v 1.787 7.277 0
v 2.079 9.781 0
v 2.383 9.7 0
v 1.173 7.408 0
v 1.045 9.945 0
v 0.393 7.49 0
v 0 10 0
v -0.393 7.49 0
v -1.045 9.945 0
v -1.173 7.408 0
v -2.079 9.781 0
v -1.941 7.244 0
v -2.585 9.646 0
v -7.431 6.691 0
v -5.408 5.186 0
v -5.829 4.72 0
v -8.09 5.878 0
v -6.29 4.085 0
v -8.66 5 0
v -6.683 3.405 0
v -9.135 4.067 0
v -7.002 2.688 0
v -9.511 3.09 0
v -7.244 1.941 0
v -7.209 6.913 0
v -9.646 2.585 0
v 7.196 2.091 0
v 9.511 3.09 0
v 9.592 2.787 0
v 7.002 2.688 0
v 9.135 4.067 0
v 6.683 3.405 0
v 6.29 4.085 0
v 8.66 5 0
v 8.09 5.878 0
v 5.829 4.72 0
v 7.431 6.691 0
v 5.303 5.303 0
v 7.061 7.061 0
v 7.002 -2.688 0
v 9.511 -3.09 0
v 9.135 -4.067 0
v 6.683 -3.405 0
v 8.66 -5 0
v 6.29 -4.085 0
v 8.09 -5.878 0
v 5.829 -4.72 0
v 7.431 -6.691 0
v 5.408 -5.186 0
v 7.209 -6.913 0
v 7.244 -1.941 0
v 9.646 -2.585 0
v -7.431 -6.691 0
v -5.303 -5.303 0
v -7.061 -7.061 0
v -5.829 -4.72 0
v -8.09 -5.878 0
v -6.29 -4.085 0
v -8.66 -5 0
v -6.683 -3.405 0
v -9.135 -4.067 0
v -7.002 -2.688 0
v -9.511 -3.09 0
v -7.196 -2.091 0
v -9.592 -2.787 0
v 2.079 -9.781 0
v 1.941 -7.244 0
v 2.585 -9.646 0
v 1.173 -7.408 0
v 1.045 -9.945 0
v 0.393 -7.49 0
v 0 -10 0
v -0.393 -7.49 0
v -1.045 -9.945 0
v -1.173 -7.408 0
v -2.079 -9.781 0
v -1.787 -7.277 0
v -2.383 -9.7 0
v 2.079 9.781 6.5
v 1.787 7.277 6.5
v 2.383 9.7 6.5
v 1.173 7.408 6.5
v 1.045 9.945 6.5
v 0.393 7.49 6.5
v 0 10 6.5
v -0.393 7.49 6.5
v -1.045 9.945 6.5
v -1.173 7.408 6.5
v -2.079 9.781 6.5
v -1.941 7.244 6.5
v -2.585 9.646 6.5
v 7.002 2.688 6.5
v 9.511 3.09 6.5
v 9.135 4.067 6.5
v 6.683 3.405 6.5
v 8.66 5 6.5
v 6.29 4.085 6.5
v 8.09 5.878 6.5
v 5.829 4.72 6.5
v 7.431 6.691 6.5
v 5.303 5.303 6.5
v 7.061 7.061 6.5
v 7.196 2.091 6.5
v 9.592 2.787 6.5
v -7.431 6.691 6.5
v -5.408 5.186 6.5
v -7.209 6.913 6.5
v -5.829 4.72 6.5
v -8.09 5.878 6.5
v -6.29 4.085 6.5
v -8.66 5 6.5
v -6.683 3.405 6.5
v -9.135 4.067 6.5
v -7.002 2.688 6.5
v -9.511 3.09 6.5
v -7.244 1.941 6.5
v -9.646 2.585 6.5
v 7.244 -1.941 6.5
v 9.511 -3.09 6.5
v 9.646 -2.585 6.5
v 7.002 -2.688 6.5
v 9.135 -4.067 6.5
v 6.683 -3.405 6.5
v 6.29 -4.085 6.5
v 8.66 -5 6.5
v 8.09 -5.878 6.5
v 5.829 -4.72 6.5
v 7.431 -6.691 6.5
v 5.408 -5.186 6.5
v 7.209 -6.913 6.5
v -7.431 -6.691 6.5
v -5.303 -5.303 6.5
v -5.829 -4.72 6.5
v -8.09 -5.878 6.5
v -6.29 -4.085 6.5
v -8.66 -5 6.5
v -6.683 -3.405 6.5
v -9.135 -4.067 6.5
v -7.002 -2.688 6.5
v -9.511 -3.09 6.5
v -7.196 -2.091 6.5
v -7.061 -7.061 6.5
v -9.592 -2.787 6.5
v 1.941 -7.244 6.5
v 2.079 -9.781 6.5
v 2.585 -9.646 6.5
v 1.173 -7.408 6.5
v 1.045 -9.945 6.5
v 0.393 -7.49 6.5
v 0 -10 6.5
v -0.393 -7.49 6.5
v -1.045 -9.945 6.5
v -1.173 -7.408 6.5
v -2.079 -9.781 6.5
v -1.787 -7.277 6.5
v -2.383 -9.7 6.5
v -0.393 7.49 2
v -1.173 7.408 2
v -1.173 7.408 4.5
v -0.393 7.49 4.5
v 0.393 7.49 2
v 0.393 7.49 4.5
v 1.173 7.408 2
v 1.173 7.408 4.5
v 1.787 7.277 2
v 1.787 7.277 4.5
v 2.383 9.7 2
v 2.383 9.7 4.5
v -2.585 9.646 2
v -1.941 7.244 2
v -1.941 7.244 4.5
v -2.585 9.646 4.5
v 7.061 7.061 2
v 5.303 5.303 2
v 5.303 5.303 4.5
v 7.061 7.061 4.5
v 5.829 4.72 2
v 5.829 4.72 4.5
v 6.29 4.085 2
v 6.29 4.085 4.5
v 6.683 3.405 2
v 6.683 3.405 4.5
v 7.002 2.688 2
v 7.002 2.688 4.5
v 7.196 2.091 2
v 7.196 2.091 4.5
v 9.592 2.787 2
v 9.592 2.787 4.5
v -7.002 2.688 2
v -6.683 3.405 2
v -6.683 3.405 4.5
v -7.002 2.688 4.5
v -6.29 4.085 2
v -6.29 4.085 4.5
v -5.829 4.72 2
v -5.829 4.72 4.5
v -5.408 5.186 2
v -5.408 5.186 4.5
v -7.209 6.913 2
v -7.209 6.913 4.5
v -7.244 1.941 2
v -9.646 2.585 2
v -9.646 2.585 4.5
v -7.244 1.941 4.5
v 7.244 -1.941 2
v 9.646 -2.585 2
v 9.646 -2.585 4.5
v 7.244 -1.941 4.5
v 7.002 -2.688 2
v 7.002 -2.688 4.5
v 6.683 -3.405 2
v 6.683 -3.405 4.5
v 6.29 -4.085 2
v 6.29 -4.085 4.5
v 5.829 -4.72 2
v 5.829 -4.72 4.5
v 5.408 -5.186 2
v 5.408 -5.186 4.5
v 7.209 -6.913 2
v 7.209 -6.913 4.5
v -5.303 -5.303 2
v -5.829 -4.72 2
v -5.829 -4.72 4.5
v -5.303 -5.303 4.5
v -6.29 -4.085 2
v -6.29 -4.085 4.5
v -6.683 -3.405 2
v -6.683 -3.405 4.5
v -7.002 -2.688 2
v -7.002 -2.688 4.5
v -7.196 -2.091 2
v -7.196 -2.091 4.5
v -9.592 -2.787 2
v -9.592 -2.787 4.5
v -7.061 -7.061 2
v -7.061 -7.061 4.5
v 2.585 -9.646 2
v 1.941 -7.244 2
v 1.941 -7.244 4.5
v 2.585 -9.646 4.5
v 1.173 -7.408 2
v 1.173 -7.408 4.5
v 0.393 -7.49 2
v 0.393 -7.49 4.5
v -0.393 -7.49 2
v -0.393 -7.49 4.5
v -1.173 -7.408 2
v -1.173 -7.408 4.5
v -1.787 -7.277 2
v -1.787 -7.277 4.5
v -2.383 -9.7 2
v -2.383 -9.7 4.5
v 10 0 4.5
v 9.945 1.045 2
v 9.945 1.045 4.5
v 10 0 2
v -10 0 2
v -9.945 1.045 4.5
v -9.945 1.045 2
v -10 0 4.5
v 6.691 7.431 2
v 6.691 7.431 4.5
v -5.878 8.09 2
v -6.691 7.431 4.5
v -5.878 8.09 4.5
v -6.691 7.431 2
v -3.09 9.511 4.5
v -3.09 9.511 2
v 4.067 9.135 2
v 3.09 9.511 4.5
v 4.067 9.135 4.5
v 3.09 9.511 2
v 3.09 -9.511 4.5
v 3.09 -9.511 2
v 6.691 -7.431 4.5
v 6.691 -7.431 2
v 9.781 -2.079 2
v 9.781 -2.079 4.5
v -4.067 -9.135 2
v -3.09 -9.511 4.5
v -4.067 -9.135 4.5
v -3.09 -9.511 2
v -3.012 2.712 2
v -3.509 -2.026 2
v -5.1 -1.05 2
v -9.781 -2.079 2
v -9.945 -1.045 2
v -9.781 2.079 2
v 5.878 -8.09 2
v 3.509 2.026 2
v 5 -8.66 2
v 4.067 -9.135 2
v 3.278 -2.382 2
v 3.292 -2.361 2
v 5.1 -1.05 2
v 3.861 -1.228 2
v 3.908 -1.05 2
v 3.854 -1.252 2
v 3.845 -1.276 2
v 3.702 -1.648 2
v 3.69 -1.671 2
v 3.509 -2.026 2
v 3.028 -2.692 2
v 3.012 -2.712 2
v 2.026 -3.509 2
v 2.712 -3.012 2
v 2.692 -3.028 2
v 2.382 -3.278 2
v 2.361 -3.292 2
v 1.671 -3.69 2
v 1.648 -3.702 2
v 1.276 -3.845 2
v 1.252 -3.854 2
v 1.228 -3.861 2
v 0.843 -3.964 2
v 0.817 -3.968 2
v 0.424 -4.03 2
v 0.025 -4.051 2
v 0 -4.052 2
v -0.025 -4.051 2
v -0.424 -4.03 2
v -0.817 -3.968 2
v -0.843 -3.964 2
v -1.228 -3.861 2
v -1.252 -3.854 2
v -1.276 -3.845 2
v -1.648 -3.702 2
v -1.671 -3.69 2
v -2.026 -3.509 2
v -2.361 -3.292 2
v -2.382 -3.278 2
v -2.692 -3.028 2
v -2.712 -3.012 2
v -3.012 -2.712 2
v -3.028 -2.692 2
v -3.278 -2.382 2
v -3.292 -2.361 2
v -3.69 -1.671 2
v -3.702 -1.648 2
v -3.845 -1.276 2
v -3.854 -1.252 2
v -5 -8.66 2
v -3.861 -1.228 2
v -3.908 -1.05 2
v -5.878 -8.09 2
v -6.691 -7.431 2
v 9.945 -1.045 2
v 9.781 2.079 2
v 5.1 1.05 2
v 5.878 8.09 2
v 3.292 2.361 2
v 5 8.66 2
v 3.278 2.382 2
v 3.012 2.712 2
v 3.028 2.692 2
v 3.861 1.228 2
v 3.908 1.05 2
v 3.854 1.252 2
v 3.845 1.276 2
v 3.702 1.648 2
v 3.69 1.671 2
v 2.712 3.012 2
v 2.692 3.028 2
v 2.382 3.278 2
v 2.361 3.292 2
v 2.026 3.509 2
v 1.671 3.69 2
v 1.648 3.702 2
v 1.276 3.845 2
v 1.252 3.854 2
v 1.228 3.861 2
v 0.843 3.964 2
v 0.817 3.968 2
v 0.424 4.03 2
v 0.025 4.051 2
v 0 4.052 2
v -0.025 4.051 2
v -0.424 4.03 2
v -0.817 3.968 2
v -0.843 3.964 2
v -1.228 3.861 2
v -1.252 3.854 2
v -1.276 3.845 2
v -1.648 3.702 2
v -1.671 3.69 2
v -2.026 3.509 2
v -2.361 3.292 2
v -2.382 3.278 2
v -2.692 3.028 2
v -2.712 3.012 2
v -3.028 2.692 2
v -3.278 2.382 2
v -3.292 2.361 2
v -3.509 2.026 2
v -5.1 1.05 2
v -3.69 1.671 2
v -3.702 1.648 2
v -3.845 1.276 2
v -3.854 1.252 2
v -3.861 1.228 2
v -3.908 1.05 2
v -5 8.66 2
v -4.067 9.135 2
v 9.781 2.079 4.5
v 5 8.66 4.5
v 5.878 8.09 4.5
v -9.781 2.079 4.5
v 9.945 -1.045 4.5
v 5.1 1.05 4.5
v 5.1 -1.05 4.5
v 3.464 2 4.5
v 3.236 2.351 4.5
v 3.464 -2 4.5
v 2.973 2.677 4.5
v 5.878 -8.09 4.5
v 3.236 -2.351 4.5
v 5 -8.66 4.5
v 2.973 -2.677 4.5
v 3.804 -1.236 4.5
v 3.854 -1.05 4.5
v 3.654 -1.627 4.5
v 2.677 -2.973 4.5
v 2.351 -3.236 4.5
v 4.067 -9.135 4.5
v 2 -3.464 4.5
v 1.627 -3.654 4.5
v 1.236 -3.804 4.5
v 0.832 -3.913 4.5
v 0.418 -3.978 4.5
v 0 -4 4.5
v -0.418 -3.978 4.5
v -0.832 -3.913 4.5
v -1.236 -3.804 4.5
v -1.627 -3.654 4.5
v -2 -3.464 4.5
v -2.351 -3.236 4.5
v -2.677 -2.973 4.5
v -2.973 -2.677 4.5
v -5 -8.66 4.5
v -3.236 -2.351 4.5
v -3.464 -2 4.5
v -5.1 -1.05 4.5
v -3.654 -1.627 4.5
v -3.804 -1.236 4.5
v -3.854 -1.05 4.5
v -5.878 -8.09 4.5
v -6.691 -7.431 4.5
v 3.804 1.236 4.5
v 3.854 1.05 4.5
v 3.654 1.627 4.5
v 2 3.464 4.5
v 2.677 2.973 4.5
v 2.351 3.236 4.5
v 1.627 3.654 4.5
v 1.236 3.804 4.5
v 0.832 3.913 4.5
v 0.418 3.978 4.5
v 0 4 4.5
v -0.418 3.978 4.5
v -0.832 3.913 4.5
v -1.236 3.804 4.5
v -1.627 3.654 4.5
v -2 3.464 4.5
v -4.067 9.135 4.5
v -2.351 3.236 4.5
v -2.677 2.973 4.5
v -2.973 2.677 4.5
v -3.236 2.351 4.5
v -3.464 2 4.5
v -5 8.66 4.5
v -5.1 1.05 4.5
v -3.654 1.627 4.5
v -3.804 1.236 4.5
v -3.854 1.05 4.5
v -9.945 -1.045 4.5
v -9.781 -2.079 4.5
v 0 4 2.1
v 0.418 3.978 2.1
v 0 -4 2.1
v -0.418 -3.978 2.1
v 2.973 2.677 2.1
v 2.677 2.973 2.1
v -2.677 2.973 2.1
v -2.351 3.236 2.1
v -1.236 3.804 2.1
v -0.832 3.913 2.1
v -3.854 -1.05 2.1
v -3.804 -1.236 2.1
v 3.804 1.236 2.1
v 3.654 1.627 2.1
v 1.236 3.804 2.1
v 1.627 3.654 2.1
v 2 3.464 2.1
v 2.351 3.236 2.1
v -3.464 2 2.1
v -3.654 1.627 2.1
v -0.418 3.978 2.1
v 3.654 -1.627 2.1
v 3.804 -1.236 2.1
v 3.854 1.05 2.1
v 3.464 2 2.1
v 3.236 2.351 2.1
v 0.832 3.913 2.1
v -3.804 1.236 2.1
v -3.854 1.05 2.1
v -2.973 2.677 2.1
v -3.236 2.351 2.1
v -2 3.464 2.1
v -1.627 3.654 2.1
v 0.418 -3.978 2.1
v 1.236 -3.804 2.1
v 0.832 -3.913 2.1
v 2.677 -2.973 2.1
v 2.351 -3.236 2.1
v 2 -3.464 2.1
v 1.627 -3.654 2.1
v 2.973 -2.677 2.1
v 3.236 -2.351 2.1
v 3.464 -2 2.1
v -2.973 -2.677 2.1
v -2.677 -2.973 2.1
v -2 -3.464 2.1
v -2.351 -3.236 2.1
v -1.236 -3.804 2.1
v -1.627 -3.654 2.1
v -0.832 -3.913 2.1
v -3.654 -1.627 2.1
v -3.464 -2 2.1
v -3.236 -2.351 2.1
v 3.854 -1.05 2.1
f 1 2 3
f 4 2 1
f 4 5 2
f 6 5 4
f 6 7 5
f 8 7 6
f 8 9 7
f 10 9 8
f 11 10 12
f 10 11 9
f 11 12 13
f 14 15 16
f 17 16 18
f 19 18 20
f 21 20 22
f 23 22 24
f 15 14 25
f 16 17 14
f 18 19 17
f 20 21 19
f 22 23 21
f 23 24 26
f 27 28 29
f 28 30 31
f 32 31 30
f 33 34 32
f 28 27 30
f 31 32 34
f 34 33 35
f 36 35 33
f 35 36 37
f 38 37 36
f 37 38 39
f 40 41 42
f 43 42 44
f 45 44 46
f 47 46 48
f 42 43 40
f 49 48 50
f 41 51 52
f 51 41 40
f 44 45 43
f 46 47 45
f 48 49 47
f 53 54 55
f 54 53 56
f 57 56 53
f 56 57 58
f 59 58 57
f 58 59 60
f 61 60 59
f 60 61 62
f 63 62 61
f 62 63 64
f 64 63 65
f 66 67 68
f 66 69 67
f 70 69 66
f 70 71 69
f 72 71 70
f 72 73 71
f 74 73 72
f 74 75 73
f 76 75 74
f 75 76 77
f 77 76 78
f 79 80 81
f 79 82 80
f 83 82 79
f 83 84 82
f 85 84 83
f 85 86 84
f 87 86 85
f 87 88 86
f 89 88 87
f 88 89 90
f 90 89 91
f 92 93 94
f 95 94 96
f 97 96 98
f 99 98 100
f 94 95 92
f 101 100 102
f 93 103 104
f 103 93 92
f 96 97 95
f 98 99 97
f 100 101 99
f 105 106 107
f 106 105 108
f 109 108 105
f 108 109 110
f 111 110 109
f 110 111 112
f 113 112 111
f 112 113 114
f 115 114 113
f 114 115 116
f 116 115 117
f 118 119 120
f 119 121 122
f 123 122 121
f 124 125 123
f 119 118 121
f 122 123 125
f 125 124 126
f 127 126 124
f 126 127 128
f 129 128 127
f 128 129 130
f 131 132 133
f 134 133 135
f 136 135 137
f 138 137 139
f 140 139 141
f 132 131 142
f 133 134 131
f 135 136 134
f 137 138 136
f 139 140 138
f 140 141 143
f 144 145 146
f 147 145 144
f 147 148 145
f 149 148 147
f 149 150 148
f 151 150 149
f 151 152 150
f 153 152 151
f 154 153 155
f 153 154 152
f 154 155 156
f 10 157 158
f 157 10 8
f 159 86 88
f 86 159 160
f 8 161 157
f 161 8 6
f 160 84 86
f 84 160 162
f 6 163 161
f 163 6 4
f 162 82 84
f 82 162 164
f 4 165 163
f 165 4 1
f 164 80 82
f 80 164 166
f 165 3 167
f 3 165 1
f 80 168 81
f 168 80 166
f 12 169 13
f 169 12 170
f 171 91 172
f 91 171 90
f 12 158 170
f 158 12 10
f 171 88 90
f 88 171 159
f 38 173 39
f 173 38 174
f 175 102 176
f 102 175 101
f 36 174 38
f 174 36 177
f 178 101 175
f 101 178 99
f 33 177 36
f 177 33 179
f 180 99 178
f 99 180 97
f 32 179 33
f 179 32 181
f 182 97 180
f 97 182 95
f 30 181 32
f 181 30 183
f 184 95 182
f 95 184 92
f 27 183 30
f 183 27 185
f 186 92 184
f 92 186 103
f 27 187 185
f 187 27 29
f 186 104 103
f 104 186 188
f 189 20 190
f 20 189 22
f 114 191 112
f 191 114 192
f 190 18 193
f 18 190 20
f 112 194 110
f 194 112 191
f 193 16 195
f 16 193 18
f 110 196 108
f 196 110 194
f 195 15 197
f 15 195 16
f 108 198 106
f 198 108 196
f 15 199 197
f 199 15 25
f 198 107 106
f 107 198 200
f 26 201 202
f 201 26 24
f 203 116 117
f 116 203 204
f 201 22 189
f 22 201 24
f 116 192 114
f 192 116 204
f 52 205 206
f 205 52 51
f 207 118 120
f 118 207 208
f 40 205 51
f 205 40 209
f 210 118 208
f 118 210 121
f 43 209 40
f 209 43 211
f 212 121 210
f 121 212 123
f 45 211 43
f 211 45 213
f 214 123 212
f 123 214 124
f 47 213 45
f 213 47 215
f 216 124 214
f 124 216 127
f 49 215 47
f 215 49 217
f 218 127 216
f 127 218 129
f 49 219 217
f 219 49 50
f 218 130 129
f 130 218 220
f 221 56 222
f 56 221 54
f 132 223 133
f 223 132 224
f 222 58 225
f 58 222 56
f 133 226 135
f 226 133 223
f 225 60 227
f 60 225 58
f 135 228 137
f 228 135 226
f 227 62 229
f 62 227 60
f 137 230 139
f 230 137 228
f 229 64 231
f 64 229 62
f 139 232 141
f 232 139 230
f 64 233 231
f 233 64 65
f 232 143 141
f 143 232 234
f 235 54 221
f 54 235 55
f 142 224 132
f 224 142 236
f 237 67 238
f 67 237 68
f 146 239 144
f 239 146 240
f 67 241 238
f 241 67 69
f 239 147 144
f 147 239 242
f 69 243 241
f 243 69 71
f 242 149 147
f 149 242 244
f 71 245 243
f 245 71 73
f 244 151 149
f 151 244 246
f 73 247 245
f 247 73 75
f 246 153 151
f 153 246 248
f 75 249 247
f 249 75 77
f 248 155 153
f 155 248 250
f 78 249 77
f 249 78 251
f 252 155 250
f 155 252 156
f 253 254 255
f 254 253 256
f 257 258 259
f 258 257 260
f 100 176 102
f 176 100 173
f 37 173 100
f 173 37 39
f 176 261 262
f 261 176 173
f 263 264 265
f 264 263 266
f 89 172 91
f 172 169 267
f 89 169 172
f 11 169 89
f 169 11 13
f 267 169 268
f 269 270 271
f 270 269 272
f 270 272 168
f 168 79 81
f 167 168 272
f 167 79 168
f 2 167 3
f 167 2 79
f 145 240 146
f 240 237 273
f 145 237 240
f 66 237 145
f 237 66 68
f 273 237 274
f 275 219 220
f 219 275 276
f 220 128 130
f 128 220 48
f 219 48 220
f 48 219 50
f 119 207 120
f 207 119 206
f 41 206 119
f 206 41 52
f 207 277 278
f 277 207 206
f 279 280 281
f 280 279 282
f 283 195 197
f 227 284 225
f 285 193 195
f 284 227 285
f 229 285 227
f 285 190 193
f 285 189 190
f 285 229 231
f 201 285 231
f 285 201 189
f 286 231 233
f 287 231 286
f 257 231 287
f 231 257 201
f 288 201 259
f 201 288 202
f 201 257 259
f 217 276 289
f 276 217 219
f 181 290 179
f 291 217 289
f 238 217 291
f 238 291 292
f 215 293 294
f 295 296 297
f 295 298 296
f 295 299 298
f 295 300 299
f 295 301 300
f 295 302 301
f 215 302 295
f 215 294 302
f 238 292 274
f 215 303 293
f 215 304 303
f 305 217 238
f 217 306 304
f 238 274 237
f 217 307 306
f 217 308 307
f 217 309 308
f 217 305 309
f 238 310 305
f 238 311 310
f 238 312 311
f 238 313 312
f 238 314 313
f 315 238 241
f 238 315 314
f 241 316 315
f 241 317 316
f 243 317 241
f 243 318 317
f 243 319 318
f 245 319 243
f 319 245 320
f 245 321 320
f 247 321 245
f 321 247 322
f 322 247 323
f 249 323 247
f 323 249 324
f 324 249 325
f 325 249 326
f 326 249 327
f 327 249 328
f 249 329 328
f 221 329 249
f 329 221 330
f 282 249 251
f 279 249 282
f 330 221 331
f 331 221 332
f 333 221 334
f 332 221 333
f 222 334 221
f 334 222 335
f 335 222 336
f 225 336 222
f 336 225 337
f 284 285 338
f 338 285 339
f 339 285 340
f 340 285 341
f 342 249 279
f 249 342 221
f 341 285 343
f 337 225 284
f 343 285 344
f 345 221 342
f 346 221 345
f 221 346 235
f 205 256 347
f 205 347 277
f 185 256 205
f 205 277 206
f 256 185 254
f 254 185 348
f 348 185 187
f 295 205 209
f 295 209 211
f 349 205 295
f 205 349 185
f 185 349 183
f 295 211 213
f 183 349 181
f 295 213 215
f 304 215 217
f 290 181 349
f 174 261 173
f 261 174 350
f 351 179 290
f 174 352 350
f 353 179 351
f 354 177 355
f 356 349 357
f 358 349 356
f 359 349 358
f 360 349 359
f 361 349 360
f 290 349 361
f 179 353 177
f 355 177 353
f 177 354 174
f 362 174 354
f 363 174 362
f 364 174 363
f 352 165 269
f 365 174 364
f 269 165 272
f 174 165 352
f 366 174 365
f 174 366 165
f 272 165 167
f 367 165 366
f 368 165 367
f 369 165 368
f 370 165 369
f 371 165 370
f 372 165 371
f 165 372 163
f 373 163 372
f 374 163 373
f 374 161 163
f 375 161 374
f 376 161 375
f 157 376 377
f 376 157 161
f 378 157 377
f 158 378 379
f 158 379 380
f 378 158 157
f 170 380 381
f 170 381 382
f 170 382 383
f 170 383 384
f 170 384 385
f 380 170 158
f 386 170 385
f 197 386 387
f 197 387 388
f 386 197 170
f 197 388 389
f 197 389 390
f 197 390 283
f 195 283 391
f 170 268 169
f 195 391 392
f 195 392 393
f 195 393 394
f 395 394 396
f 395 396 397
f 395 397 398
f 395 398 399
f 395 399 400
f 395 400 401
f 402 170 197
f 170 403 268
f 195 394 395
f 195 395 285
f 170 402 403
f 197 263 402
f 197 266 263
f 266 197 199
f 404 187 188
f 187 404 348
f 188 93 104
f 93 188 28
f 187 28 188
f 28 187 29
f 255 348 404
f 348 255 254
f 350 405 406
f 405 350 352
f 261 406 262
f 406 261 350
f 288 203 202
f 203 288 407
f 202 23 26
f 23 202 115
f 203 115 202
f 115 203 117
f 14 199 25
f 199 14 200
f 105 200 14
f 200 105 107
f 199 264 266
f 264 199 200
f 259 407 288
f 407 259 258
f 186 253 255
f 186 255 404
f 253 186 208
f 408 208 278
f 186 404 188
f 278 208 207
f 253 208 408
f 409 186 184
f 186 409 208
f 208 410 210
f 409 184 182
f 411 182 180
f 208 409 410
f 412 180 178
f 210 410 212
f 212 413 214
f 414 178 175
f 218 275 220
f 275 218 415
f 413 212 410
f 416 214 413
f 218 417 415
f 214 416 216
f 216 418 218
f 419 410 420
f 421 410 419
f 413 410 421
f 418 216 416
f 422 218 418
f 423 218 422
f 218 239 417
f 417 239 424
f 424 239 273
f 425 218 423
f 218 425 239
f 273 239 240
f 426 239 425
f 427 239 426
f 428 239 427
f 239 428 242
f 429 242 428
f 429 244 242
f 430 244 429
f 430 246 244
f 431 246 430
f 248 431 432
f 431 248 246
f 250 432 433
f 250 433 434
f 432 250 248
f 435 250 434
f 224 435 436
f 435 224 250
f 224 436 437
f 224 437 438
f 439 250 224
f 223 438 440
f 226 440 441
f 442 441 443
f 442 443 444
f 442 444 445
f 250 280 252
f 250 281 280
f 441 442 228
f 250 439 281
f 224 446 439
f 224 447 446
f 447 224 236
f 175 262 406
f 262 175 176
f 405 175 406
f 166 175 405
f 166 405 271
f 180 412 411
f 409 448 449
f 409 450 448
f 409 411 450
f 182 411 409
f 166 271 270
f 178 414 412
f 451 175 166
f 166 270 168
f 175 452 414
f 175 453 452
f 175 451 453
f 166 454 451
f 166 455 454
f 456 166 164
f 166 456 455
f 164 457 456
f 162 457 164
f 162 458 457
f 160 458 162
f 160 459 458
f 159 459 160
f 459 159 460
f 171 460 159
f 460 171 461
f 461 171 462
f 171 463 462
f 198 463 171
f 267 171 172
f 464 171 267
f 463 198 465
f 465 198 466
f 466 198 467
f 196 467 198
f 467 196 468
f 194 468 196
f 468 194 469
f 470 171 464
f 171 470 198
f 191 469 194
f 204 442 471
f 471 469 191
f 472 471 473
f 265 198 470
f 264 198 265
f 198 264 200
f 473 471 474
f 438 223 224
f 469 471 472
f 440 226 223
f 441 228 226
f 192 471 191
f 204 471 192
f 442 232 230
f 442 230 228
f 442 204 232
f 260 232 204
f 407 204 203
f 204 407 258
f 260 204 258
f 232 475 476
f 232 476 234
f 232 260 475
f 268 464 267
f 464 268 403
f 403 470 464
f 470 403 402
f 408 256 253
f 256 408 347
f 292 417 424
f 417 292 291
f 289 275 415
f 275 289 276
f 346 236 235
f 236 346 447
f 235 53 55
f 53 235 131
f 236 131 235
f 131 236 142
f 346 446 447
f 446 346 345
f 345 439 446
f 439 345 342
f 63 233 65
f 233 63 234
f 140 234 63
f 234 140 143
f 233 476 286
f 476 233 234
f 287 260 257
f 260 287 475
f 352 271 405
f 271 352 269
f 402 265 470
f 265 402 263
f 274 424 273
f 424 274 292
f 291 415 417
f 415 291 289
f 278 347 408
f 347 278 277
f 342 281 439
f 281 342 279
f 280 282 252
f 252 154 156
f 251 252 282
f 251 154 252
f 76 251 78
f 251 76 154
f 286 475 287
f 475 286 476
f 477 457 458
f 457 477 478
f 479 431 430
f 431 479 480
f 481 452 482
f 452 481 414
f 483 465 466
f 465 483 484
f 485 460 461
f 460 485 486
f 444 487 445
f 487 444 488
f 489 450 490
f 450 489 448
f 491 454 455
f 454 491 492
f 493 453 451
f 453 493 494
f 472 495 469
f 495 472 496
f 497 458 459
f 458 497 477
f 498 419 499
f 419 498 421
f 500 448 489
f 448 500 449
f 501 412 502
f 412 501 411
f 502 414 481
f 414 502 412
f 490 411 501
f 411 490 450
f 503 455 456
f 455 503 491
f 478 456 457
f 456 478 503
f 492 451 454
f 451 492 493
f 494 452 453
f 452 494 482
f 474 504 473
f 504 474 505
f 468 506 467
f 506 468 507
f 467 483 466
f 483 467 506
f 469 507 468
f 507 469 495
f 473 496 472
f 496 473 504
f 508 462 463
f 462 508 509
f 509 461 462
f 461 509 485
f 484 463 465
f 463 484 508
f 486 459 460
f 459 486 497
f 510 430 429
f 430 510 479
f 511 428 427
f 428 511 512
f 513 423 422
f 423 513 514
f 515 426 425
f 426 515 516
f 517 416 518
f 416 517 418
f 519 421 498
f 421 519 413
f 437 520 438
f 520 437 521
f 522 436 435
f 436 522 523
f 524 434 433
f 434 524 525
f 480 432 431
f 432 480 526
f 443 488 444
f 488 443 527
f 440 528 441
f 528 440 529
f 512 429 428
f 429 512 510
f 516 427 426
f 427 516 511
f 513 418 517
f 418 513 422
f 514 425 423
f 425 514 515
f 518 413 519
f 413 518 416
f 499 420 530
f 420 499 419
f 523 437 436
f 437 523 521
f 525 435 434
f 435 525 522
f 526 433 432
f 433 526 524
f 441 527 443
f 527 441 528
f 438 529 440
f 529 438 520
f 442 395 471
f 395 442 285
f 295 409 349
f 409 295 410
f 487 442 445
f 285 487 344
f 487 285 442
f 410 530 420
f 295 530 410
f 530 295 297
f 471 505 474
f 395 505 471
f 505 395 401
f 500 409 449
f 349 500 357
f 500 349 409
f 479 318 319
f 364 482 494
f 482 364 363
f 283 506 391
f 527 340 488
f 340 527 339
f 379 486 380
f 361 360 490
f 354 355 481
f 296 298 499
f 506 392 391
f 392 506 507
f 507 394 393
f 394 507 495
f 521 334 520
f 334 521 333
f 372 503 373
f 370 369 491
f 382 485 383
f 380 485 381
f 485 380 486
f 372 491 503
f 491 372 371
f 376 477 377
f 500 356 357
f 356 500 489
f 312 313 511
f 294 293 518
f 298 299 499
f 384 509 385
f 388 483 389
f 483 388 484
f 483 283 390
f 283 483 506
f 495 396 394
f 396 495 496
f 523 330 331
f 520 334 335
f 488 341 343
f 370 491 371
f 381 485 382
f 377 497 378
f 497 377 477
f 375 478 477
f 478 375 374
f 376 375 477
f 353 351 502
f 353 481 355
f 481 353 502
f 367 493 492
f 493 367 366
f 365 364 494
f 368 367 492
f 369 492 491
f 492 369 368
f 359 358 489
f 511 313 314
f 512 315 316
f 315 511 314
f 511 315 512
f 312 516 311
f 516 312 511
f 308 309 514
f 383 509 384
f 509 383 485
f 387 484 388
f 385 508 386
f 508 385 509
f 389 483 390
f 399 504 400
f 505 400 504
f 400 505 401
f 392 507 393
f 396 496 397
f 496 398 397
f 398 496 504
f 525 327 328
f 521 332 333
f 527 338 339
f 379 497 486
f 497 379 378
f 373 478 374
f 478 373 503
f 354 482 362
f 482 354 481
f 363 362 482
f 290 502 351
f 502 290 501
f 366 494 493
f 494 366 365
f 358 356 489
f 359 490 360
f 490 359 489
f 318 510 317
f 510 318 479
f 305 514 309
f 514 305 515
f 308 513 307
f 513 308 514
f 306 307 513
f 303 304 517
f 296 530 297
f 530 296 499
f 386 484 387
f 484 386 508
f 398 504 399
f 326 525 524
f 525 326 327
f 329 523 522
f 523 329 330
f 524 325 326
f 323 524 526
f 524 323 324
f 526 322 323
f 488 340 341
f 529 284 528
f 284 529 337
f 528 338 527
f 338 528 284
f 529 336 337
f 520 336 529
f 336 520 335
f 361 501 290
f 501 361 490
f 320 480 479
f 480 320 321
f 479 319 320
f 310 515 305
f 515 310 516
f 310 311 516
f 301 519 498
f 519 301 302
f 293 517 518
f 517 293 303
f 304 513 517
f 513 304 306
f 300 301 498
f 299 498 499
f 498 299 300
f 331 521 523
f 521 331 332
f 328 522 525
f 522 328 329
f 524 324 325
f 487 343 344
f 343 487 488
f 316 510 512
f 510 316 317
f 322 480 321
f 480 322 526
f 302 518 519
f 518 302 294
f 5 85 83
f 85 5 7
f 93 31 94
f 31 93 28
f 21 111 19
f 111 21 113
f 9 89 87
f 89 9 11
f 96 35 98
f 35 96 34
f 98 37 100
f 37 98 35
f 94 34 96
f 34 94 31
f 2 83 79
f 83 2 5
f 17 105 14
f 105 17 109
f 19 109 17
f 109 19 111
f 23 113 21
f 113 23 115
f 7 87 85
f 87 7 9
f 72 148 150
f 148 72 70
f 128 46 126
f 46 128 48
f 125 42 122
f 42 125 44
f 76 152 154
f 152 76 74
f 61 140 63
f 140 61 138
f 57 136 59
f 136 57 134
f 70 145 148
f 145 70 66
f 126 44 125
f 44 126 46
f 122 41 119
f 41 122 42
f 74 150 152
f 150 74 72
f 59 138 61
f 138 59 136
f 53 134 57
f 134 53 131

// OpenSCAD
// file: tbhub-core.scad
/*
Copyright (c) 2017 Paul Austin - SDG

Permission is hereby granted, free of charge, to any person obtaining a copy
of this software and associated documentation files (the "Software"), to deal
in the Software without restriction, including without limitation the rights
to use, copy, modify, merge, publish, distribute, sublicense, and/or sell
copies of the Software, and to permit persons to whom the Software is
furnished to do so, subject to the following conditions:

The above copyright notice and this permission notice shall be included in all
copies or substantial portions of the Software.

THE SOFTWARE IS PROVIDED "AS IS", WITHOUT WARRANTY OF ANY KIND, EXPRESS OR
IMPLIED, INCLUDING BUT NOT LIMITED TO THE WARRANTIES OF MERCHANTABILITY,
FITNESS FOR A PARTICULAR PURPOSE AND NONINFRINGEMENT. IN NO EVENT SHALL THE
AUTHORS OR COPYRIGHT HOLDERS BE LIABLE FOR ANY CLAIM, DAMAGES OR OTHER
LIABILITY, WHETHER IN AN ACTION OF CONTRACT, TORT OR OTHERWISE, ARISING FROM,
OUT OF OR IN CONNECTION WITH THE SOFTWARE OR THE USE OR OTHER DEALINGS IN THE
SOFTWARE.
*/

$fn = 50;

module coreHub(splineCount = 20, coreH = 4.5, splineH = 3, splineD=5.0, d = 8.5) {
    
    // Approx spline shaft diameters
    // sg90(subMicro) - 5mm
    // micro          - 6mm
    screwFlangeThickness = 3.5;
    screwHeadDiameter = 5;
    screwShaftDiameter = 2.2;
    
    // The main shaft hub
    difference() {
        cylinder($fn = 6, d=d, h=splineH);
        cylinder(d=splineD+0.35, h=splineH);
    }

    // Splines on the inside of the hub
    color("red") linear_extrude(splineH)
    for ( rib = [0:(360/splineCount):360]) {
        // Pivot aroung origin
        rotate([0,0,rib])
        // Move out from origin
        translate([splineD/2+0.2,0,0])
        // Make corner face origin
        rotate([0,0,45])
        // Make a square
        square([0.7,0.7], center = true);
    }
    

    // Hole for the screw
    color("green") difference() {    
        translate([0,0,splineH]) cylinder($fn = 6, d=d,h=(coreH - splineH));
        {
        translate([0,0,splineH]) cylinder(d=screwShaftDiameter, h=screwFlangeThickness);
        translate([0,0,splineH+screwFlangeThickness]) cylinder(d=screwHeadDiameter,h=10);
        #translate([0,0,1.3])sphere(d=5.5);
        }
    }
    
}

rotate([180,0,0]) coreHub(splineCount = 21, coreH = 10);
// file: hub.scad
/*
Copyright 2017 Trashbots Inc.

Licensed under the Apache License, Version 2.0 (the "License");
you may not use this file except in compliance with the License.
You may obtain a copy of the License at

    http://www.apache.org/licenses/LICENSE-2.0

Unless required by applicable law or agreed to in writing, software
distributed under the License is distributed on an "AS IS" BASIS,
WITHOUT WARRANTIES OR CONDITIONS OF ANY KIND, either express or implied.
See the License for the specific language governing permissions and
limitations under the License.
*/

$fn=60;

use <tbhub-core.scad>

// dimensions units in mm
slatWidth = 10;
slatDepth = 10;
slatThickness = 1.9;
stickDiameter = 6;
hubDiameter = 20;
coreDiameter = 6.9;

// Strategy 
// 1. Core hub + spline core
// 2. Remove slots
// 3. Remove compression slots

// Version history
//  v0.1.0 Initial print test for Reynosa trip
//  v0.1.2 Widened slot to 10.2mm, and chamfer used vars
//  v0.1.3 Peg insets are 0.15mm deeper to allow for printing
//  v0.1.4 Peg insets are 0.2mm deeper to allow for printing

// Cylinder with slot in it for optional key, and bevel
module slottedShaft(d=8, h=10) {
    slotWidth = 10.2;
    slotThickness = 2.1; 
    chamfer = 1.1;
    cylinder(d=d,h=h);
    translate([0,0,h-2.1]) cylinder(r2=(d/2)+chamfer, r1=(d/2), h=2.1);
    translate([-(slotWidth/2),-(slotThickness/2),0]) cube([slotWidth,slotThickness,h]);
    translate([0,0,0]) cylinder(r1=(d/2)+chamfer, r2=(d/2), h=2.1);
}

// Hub
module plugHub(plugCount = 6) {
    difference() {
        color("cyan") rotate_extrude() {
            difference(){
                translate([0,0,0]) square([hubDiameter,slatWidth]);
                translate([hubDiameter+2,slatWidth/2,0]) circle(d=slatWidth-1);
            }
        }

        #union () {
            slottedShaft();
           // coreHub(h = slatWidth, splineCount = 21, splineH = 3, d = 10.5);
           // translate([0,0,-0.5]) cylinder(h = slatWidth+1, d = coreDiameter);
            for(i=[0:(360/plugCount):360]) {
                translate([0,0,0])
                rotate(i)
                translate([hubDiameter-slatDepth,0,-0.5]) rotate([90,0,0])  {
                    // Slot for a popsicle stick
                    translate([0,0,-slatThickness/2])   
                    linear_extrude(slatThickness) square([slatDepth,slatWidth+1]);
                    
                    // Carve out back of slot as well
                    translate([3.3,(slatWidth+1)/2,-slatThickness/2])   cylinder(h = slatThickness, d = slatWidth*1.2);
                    
                    // Cylinder for straw 
                    translate([0,(slatWidth+1)/2,0])
                    rotate([90,0,90]) cylinder(d=stickDiameter, h=slatDepth);
                }
            }
        }
    }
}

module circlePegs (pegs = 6, diameter = 26.8, innerDiameter = 15, height = 3, fudge = 1.04) {
    step        = 360 / pegs;

    // Additional amount keeps the plug from binding too hard when 
    // pluged into a complimentary part.
    halfStep    = (step / 2) * fudge;
    radius      = (diameter / 2);
    pegHeight   = height;
    
    rotate (-step/4) 
    linear_extrude(height=pegHeight) 
    difference () {
        difference() {
            circle(d=diameter);
            circle(d=innerDiameter);
        }
        for (i = [0:step:360]) {
            // The diameter is used so the triangle is much longer than the edges need
            // but long enough to clear out the entire wedge.
            polygon([
                    [0,0],
                    [diameter * cos(i), diameter * sin(i) ],
                    [diameter * cos(i + (halfStep)), diameter * sin(i+(halfStep)) ]
                    ]);
        }
    }
}

module circlePegsWithBase(pegs = 6, diameter = 26.8, innerDiameter = 15, heigth = 6) {
    baseHieght  = heigth / 2;

    translate([0,0,-baseHieght]) linear_extrude(heigth/2) circle(d=diameter);
    circlePegs(pegs, diameter, innerDiameter, heigth/2);
}


module pegPlugHub(pegCount = 6, pegHeight = 2.5) {

    // When subtracting teh pegs, make them bit larger, and deeper.
    // TODO pull these tweak to high level settings, they may apply to to multiple pieces.
    difference() {
        rotate([0,0,-15]) plugHub(plugCount = pegCount);
        rotate([0,0,-15]) circlePegs(pegs = pegCount, diameter=27.0, height=pegHeight+0.2, innerDiameter = 14.7, fudge = 0.99);
    }

    translate ([0,0,10]) rotate([0,0,-15]) circlePegs(pegs = pegCount, diameter=26.8, height=pegHeight);
}

module insetpegPlugHub(pegCount = 6, pegHeight = 2.5) {
    difference() {
        pegPlugHub(pegCount = 6, pegHeight = 2.5);
        union() {
            offset([0,0,8]) clyinder(r1=9,r2=9,h=2);
        }
    }
}

// Rotaate 15deg to aling a set of slots along hte 45deg axis, this helps with 
// default file and surface fills
//rotate([0,0,-15]) plugHub(plugCount = 6);
intersect() {
    translate([60,0,0]) rotate([0,0,-15]) pegPlugHub(plugCount = 6, pegHeight = 2.5);
    
    // add cube so we can get a cross section.
}
// main file
/*
Copyright 2017 Trashbots Inc.

Licensed under the Apache License, Version 2.0 (the "License");
you may not use this file except in compliance with the License.
You may obtain a copy of the License at

    http://www.apache.org/licenses/LICENSE-2.0

Unless required by applicable law or agreed to in writing, software
distributed under the License is distributed on an "AS IS" BASIS,
WITHOUT WARRANTIES OR CONDITIONS OF ANY KIND, either express or implied.
See the License for the specific language governing permissions and
limitations under the License.
*/

$fn = 60;

use <hub.scad>;

// Use the basic peg plugs, but keep the outer diameter to 20mm ( not 27)
// if this can be brought down to 15mm then it woudl work wiht 20mm diameter gears

intersection() {
    difference() {
        union() {
            translate ([0,0,0]) rotate([0,0,0]) circlePegs(pegs = 6, diameter=26.8, height=6.5);
            // might make thickness a full 3mm, but try 2.5 first.
            translate ([0,0,2]) cylinder(d=20,h=2.5);
        }
        slottedShaft(d=8,h=7);
    }
    cylinder(d=20,h=7);
}
